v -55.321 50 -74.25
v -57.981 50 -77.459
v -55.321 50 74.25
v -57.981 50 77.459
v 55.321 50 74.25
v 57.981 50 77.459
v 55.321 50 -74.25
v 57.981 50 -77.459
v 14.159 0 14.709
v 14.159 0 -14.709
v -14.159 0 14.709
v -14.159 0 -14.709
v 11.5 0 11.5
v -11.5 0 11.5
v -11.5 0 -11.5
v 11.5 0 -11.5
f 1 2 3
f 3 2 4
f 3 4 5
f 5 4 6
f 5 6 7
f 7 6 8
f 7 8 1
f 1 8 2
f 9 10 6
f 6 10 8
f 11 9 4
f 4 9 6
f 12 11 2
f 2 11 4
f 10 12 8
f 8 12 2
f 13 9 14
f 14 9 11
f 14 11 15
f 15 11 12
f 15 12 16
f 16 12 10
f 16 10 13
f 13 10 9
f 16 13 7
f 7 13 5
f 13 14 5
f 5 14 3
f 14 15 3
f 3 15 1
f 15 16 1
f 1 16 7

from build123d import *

# Parameters (mm, degrees)
CUT_EXTRUDE1_DEPTH      = 1294.338702909
CUT_EXTRUDE1_DEPTH_BACK = 1294.338702909
SKETCH3_W               = 1780
SKETCH3_H               = 650
SHELL1_T                = 2


with BuildPart() as part:
    # Boundary1: read off the stored shape, not the designer's step
    # Boundary1: loft between two sections, ruled curve by curve
    boundary1_from = [
        Edge.make_line((625, 700, -890), (625, 700, 890)),
        Edge.make_line((625, 700, 890), (-625, 700, 890)),
        Edge.make_line((-625, 700, 890), (-625, 700, -890)),
        Edge.make_line((-625, 700, -890), (625, 700, -890)),
    ]
    boundary1_to = [
        Edge.make_line((11.5, 0, -11.5), (11.5, 0, 11.5)),
        Edge.make_line((11.5, 0, 11.5), (-11.5, 0, 11.5)),
        Edge.make_line((-11.5, 0, 11.5), (-11.5, 0, -11.5)),
        Edge.make_line((-11.5, 0, -11.5), (11.5, 0, -11.5)),
    ]
    boundary1 = Solid(Shell([*[Face.make_surface_from_curves(boundary1_from[k], boundary1_to[k]) for k in range(4)], Face(Wire(boundary1_from)), Face(Wire(boundary1_to))]))
    add(boundary1)

    # Sketch3 → Cut-Extrude1 (cut, two sides: drawn at the far end of the back side and taken through both)
    with BuildSketch(Plane(origin=(0, 0, 0), x_dir=(0, 0, -1), z_dir=(1, 0, 0)).offset(-CUT_EXTRUDE1_DEPTH_BACK)):
        with Locations((0, 375)):
            Rectangle(SKETCH3_W, SKETCH3_H)
    extrude(amount=CUT_EXTRUDE1_DEPTH + CUT_EXTRUDE1_DEPTH_BACK, mode=Mode.SUBTRACT)

    # Shell1
    shell1_openings = [part.faces().sort_by_distance(p)[0] for p in [
        (0, 0, 0),
        (0, 50, 0),
    ]]
    offset(amount=SHELL1_T, openings=shell1_openings, kind=Kind.INTERSECTION)


solid = part.part
